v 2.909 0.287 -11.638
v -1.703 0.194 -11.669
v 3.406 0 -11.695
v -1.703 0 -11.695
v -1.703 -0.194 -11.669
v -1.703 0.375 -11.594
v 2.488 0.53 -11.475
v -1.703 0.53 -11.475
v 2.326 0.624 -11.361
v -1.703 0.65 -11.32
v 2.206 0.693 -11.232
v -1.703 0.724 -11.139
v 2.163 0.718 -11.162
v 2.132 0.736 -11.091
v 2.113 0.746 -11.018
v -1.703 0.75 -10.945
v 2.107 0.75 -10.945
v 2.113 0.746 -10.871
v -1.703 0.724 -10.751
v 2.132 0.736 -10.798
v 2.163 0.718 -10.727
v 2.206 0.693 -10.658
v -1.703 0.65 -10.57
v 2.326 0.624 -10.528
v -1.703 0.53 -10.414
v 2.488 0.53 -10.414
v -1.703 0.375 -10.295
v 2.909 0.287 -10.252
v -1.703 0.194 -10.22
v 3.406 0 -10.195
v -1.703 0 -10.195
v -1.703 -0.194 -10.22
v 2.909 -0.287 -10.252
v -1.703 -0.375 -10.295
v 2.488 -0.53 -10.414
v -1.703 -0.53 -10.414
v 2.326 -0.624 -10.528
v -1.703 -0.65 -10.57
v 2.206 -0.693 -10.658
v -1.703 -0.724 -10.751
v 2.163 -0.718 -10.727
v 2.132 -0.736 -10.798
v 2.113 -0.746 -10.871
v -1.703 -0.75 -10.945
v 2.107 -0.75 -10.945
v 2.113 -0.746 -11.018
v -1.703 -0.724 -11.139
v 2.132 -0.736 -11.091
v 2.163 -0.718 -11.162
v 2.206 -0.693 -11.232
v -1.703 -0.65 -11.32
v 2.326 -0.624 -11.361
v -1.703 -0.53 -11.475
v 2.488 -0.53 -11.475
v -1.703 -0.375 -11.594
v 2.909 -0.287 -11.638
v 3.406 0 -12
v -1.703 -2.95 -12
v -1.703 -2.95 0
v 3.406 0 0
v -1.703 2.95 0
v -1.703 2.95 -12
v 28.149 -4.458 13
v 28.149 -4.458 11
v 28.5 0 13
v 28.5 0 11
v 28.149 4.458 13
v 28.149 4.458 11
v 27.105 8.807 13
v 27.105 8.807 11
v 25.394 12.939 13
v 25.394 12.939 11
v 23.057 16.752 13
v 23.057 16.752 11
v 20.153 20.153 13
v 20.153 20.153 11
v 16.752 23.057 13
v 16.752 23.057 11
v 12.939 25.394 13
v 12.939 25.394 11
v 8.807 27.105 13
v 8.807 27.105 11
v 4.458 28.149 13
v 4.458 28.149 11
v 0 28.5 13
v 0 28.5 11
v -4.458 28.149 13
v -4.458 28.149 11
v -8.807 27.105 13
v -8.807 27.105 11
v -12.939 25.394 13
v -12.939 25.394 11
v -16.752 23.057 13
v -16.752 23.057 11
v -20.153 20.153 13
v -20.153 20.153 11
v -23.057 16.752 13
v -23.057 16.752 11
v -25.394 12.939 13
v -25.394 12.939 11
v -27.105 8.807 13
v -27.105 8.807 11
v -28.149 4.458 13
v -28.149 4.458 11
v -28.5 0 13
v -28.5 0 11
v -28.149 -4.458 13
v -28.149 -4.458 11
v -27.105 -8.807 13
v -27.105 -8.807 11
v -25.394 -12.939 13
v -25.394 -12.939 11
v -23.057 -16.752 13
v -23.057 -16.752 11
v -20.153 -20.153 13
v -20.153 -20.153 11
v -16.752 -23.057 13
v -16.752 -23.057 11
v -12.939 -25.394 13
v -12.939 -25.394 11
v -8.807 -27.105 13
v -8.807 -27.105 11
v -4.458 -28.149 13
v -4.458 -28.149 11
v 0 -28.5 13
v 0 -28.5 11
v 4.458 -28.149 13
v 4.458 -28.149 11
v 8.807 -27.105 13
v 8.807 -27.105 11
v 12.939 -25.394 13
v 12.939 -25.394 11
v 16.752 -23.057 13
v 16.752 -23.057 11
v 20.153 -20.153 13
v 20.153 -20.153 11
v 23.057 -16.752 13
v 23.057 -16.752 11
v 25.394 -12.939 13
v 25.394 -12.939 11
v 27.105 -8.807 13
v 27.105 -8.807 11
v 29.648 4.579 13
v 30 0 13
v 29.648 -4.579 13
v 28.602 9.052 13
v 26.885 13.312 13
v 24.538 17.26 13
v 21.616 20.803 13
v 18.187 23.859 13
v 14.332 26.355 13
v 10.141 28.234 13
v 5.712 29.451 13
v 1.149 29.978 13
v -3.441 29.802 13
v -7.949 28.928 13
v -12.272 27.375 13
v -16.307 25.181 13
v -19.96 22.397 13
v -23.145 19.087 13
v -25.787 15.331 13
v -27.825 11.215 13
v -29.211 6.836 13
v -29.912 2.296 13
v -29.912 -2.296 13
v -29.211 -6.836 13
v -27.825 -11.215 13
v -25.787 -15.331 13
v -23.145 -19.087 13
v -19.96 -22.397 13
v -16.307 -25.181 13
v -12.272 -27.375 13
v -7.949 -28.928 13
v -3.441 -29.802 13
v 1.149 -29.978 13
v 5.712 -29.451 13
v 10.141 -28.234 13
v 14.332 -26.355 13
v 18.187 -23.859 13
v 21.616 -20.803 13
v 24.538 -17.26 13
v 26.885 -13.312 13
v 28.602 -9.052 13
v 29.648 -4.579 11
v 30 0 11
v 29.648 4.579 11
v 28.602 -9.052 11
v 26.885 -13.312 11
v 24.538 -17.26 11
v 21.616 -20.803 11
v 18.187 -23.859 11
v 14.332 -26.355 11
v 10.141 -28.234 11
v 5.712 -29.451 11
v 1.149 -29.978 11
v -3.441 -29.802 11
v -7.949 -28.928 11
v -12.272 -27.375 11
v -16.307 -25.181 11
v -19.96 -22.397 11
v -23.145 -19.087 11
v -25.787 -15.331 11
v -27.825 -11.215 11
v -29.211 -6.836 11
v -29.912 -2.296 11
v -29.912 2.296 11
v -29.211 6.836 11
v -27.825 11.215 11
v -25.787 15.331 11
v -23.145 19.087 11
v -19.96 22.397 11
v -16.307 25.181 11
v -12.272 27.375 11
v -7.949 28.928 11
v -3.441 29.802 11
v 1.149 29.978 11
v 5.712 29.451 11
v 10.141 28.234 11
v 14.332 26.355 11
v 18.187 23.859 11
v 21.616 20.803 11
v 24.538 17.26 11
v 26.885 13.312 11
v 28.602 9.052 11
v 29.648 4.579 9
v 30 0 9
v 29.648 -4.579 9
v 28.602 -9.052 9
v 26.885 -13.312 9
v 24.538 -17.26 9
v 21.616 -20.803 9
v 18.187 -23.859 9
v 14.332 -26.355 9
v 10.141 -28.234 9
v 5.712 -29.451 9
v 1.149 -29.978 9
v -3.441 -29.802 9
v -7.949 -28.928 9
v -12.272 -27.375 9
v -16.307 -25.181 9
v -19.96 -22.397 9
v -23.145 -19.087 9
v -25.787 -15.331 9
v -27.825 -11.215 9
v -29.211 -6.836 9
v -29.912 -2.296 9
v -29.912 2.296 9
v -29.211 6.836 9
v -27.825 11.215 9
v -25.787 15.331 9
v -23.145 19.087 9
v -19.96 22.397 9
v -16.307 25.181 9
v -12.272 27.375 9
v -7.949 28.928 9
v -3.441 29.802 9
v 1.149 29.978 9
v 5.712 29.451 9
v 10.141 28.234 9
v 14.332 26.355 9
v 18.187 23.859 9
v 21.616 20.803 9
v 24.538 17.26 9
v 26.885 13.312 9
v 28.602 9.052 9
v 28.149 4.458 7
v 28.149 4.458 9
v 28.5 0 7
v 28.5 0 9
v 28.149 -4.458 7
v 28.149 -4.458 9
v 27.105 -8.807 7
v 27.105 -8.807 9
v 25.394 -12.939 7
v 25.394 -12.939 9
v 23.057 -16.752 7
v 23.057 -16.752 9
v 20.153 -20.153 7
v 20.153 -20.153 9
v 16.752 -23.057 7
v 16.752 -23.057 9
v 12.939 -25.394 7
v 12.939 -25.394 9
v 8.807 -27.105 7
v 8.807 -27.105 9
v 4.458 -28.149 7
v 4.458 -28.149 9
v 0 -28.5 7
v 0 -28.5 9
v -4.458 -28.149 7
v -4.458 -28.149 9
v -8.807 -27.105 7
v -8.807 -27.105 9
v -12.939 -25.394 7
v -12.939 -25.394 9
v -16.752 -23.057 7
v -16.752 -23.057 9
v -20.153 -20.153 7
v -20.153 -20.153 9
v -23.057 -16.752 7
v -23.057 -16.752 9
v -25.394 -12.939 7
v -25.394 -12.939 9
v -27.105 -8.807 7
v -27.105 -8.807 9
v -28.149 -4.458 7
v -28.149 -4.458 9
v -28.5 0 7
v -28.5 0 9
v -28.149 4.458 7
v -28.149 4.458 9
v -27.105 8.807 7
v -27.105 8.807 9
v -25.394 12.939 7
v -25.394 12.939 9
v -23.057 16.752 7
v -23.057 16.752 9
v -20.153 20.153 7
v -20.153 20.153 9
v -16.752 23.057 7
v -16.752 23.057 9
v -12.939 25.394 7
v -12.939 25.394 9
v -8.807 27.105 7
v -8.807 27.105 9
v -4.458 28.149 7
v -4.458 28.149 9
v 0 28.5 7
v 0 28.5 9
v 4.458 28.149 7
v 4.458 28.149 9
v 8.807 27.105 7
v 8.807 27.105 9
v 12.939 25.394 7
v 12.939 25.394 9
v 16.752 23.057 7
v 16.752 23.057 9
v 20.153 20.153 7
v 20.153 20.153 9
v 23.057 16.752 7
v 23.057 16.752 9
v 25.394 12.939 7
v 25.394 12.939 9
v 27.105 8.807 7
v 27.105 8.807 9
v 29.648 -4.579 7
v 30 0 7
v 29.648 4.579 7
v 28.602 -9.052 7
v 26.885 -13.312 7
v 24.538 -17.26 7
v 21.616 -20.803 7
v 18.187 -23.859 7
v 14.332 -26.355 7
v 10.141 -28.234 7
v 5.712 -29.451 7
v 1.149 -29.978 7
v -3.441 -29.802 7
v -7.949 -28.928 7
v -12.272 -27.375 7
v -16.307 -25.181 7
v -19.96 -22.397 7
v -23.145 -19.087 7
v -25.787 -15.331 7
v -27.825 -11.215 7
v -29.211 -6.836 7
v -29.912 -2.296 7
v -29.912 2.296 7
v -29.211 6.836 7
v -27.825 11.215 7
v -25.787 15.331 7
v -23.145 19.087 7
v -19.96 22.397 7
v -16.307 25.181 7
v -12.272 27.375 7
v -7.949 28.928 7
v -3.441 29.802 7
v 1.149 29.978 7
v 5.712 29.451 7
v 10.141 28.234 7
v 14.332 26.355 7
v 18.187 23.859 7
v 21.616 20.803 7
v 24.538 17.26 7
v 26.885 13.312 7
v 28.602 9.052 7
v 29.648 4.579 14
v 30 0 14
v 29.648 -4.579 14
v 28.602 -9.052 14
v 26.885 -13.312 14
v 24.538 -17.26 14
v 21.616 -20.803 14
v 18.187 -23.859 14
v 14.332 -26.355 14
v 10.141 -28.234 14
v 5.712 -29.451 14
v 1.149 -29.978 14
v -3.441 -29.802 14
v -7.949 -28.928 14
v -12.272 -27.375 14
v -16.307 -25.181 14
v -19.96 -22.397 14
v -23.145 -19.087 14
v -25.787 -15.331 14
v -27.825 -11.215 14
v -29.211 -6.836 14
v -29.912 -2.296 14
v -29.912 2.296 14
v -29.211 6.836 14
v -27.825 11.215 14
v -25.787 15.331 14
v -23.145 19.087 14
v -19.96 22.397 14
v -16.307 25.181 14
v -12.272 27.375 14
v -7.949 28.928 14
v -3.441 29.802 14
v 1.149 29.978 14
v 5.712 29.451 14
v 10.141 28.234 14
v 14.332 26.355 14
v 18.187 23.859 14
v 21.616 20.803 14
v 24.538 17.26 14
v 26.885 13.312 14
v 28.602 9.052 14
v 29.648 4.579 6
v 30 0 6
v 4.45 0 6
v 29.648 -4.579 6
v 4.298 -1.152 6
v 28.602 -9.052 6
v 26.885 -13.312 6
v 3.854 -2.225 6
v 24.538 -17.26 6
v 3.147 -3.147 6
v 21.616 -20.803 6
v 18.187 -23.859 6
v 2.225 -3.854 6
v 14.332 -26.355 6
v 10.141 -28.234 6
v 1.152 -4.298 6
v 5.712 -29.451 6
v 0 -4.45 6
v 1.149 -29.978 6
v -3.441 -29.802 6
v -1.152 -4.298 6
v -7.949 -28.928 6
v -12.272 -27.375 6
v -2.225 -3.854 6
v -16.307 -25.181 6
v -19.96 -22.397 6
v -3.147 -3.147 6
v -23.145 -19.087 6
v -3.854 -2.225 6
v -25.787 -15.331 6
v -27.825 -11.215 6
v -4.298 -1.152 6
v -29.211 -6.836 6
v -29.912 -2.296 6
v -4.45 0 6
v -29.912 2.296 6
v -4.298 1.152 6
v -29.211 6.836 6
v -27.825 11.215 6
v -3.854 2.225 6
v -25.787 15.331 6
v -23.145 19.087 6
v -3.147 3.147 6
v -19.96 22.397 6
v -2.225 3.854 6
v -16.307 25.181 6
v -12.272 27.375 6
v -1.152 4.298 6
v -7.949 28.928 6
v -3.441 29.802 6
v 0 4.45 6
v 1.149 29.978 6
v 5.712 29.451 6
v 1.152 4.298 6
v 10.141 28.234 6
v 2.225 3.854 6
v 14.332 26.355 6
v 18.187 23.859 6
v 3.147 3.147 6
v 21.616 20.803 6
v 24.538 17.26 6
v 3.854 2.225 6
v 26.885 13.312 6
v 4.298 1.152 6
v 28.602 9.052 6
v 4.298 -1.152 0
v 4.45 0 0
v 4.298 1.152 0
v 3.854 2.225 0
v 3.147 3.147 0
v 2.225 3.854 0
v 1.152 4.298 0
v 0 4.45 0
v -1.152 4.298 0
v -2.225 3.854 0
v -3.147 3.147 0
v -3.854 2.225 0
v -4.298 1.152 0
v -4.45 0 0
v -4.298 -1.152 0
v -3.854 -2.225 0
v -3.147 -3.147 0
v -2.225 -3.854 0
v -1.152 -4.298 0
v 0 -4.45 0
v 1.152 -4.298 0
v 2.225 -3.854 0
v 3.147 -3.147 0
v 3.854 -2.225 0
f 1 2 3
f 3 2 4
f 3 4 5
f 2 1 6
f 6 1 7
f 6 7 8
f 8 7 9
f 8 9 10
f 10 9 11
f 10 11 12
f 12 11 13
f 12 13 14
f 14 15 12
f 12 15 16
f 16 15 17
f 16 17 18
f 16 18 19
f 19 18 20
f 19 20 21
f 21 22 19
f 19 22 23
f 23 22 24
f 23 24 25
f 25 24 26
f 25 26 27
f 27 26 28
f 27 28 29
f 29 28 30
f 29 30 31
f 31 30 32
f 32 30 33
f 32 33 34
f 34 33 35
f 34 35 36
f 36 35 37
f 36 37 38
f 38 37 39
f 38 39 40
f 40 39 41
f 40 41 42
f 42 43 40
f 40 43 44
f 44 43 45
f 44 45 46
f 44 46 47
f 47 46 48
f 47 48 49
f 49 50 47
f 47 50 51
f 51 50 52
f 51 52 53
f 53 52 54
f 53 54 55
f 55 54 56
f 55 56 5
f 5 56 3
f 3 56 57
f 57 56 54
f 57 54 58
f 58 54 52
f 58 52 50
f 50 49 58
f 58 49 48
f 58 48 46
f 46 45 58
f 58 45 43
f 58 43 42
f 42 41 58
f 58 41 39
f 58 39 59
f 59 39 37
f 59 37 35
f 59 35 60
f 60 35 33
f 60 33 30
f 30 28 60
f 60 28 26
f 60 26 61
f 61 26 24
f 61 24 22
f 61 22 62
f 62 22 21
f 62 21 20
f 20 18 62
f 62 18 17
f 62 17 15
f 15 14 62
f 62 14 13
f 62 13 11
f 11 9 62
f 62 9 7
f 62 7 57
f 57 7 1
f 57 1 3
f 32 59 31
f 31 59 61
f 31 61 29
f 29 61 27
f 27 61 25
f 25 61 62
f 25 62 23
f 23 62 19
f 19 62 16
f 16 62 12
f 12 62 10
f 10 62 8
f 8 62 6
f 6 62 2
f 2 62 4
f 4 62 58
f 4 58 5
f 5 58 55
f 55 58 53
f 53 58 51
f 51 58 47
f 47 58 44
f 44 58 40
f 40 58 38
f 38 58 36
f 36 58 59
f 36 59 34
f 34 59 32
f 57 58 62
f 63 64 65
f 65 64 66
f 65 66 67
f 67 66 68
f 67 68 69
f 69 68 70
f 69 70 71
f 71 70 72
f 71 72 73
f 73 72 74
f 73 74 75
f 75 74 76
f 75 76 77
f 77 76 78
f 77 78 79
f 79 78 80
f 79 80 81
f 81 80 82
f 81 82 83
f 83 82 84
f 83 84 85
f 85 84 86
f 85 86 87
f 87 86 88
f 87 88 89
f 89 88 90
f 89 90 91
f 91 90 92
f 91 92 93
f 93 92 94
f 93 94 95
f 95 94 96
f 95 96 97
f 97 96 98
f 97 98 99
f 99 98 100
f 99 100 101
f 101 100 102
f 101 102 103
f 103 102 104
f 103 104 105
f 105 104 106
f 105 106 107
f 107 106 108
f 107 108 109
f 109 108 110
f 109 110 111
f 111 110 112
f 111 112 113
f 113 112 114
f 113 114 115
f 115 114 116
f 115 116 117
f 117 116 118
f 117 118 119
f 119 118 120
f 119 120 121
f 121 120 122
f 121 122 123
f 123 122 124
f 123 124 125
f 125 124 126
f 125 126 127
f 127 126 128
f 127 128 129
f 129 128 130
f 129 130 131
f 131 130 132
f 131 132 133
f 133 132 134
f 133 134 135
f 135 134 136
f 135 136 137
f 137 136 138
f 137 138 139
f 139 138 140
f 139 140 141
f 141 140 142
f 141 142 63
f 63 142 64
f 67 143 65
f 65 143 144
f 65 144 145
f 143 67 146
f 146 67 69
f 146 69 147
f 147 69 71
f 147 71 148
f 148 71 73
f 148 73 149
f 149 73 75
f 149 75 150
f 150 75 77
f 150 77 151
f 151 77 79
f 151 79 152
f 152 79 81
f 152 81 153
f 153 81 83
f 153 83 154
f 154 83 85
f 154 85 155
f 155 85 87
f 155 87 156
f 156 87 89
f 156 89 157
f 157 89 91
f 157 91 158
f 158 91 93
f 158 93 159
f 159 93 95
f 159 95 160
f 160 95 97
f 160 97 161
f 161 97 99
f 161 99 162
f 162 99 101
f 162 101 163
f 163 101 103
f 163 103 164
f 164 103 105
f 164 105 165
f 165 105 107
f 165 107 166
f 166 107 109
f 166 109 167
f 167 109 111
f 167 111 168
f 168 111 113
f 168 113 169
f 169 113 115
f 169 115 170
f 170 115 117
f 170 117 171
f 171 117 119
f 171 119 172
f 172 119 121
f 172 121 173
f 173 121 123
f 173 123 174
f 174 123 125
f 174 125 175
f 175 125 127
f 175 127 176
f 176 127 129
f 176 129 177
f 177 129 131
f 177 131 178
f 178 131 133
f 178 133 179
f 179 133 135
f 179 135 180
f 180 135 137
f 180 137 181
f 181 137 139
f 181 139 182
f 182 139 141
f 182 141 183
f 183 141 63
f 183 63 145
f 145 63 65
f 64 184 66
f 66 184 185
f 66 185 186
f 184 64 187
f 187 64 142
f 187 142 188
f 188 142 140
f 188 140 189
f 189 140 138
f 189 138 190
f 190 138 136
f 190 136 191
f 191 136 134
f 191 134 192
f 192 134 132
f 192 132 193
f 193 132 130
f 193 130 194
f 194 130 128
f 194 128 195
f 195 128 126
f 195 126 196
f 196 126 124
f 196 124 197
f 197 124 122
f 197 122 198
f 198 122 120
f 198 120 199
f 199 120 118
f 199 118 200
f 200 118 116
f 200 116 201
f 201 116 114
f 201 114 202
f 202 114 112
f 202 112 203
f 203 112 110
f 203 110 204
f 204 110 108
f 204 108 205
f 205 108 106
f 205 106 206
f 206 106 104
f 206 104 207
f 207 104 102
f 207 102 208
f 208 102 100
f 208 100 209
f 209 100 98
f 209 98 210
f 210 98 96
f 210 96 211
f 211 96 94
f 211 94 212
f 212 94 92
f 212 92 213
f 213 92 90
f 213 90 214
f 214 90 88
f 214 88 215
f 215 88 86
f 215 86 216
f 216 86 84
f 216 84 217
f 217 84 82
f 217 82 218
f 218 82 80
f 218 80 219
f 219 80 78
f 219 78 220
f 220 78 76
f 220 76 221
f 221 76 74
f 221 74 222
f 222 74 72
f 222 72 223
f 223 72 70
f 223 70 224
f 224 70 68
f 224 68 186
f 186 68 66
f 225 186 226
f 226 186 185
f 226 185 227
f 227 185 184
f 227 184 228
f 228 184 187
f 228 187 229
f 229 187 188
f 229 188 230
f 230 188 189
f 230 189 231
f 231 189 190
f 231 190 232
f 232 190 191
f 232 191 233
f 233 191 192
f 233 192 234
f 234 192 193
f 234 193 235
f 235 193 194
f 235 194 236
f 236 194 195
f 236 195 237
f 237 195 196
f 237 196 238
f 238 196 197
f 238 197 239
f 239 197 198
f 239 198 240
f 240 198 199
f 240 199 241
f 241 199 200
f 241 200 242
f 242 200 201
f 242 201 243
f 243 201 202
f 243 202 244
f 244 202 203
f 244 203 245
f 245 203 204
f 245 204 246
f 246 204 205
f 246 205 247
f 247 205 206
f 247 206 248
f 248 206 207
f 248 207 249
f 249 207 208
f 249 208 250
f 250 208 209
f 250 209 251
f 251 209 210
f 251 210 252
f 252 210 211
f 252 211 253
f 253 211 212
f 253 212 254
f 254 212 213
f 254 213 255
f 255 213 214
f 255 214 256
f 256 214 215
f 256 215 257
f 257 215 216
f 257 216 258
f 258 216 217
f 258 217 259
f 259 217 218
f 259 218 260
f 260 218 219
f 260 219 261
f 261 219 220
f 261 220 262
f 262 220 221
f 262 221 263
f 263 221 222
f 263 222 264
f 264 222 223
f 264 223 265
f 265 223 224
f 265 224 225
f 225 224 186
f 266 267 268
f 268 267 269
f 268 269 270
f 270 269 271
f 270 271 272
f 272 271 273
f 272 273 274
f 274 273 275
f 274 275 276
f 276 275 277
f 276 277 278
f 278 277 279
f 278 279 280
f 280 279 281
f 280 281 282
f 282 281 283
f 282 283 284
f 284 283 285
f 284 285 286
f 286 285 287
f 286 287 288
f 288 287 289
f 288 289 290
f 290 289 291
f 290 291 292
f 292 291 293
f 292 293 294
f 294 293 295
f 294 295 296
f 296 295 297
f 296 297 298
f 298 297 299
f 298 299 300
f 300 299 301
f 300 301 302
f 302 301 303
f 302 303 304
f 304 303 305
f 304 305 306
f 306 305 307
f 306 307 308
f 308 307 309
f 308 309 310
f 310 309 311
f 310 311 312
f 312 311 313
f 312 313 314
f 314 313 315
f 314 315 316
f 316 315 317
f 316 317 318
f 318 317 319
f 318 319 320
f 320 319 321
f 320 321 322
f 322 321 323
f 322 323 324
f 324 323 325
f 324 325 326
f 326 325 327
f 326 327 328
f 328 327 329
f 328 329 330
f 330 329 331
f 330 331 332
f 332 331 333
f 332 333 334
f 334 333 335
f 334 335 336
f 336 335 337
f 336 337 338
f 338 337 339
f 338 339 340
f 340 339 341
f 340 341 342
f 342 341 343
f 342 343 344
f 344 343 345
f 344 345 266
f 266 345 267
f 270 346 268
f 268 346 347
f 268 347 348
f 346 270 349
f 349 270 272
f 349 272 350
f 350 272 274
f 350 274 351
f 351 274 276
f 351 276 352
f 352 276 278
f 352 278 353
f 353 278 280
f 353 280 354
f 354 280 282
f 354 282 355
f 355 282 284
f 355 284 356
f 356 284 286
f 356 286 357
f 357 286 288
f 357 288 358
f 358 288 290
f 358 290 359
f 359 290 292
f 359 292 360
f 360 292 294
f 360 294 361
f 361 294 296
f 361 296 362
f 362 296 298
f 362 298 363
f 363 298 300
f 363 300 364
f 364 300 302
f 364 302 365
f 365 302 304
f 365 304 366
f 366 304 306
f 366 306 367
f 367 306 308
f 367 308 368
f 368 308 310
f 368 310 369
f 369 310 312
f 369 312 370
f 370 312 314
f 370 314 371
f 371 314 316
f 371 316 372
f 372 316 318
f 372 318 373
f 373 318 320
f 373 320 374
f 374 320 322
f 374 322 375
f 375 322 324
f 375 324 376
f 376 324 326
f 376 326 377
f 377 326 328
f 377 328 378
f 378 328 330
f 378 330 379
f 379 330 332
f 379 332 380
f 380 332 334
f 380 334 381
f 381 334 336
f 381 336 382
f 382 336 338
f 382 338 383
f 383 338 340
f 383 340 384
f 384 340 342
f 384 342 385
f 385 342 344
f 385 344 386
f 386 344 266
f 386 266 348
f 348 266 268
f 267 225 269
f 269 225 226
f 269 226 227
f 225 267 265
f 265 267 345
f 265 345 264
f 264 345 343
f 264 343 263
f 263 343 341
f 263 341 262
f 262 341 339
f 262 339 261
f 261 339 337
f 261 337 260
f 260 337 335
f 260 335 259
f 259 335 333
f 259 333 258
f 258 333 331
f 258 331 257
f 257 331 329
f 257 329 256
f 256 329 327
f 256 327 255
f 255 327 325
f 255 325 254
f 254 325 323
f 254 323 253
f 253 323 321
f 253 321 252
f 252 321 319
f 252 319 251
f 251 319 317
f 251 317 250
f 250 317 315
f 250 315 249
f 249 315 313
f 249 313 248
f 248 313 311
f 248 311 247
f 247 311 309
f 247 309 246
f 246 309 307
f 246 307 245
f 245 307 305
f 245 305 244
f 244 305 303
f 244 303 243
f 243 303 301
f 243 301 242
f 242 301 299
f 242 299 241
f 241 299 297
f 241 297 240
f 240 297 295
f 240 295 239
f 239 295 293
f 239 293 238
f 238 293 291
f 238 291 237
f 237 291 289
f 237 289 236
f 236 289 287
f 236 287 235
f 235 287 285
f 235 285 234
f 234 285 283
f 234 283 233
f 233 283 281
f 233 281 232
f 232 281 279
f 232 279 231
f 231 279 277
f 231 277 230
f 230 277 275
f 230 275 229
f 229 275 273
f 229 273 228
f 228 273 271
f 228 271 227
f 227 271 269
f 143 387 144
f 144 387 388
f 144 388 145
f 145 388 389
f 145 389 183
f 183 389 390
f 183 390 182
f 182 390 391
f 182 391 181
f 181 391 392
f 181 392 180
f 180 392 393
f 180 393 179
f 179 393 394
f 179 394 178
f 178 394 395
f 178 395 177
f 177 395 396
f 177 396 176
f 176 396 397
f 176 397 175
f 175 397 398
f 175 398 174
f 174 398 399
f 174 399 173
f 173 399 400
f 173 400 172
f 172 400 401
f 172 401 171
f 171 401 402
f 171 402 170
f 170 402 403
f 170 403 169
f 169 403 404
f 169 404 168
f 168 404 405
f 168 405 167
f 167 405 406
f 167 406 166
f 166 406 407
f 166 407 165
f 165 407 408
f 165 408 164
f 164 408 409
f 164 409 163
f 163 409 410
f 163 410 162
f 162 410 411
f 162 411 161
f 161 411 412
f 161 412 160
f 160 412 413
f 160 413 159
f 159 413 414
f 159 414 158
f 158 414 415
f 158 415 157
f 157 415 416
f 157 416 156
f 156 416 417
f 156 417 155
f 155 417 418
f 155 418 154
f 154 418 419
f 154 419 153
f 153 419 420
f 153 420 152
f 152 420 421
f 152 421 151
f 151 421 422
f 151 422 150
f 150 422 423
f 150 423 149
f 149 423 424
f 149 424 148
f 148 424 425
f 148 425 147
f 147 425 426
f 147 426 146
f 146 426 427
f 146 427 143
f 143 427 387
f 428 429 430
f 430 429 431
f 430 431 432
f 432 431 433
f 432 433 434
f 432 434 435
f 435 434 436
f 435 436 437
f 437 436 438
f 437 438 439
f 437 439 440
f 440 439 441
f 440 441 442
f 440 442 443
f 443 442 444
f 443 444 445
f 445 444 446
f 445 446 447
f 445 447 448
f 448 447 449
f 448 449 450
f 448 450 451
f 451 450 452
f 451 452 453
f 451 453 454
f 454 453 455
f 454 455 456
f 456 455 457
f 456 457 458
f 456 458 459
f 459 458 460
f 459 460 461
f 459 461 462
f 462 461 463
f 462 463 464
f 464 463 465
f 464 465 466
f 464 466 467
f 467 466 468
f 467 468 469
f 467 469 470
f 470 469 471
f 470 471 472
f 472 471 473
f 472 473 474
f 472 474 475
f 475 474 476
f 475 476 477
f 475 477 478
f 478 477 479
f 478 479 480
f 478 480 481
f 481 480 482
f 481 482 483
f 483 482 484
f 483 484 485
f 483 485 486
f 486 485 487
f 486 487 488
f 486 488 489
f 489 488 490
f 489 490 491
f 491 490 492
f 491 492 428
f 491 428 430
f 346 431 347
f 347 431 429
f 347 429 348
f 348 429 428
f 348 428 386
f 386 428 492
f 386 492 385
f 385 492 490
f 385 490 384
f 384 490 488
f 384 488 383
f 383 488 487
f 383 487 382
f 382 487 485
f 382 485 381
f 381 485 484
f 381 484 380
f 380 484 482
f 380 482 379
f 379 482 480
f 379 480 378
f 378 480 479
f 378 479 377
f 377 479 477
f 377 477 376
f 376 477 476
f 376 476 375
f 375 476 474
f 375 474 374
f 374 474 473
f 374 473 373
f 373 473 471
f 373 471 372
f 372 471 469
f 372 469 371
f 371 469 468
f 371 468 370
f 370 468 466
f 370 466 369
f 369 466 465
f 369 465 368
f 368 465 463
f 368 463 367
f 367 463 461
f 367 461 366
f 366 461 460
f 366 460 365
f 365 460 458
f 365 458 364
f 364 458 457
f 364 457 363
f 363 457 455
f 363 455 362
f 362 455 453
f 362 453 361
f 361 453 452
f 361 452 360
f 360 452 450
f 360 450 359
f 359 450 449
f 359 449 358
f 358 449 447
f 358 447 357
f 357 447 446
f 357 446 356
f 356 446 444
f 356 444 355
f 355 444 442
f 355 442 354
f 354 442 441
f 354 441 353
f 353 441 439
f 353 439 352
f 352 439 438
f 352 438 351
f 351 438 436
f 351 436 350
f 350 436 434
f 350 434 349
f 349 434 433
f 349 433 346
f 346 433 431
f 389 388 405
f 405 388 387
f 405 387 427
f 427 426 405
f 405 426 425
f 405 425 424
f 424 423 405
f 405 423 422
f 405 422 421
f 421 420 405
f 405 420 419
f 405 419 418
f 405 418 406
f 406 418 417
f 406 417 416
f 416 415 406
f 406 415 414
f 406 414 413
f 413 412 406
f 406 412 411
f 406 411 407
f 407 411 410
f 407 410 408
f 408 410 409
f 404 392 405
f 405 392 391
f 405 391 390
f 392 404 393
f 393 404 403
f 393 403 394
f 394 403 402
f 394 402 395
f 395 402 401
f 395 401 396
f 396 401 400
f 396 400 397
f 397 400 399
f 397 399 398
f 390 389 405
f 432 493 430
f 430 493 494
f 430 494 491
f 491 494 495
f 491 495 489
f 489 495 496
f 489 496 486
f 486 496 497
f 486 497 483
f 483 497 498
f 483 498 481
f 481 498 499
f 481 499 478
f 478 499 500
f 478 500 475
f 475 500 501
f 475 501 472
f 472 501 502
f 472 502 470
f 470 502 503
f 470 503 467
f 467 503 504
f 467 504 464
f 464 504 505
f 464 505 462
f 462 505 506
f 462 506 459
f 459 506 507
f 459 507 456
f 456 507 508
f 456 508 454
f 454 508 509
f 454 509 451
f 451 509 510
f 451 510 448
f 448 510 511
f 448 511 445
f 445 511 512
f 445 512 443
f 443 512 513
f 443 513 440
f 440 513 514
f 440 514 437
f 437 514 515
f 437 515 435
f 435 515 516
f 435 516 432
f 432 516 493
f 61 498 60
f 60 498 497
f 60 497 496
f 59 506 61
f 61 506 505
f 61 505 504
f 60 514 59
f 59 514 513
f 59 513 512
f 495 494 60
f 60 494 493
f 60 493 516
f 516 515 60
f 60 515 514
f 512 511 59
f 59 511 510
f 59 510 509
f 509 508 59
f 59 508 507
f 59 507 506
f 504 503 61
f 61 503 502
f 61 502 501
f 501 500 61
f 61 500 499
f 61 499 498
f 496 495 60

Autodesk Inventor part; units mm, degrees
ref_plane "YZ Plane" through (0, 0, 0) normal (1, 0, 0) x (0, 1, 0)
ref_plane "XZ Plane" through (0, 0, 0) normal (0, 1, 0) x (-1, 0, 0)
ref_plane "XY Plane" through (0, 0, 0) normal (0, 0, 1) x (1, 0, 0)
sketch "Sketch3" plane through (0, 0, 0) normal (0, 0, 1) x (1, 0, 0)
  circle A0 centre (0, 0) radius 4.45
  dimension "d11" = 8.9
extrude "Extrusion3" add sketch "Sketch3" along normal blind 6
sketch "Sketch4" plane through (0, 0, 6) normal (0, 0, 1) x (1, 0, 0)
  circle A0 centre (0, 0) radius 30
  dimension "d14" = 60
extrude "Extrusion4" add sketch "Sketch4" along normal blind 8
ref_plane "Work Plane2" through (0, 0, 8) normal (0, 0, 1) x (1, 0, 0)
ref_plane "Work Plane1" through (0, 0, 10) normal (0, 0, 1) x (1, 0, 0)
sketch "Sketch5" plane through (0, 0, 8) normal (0, 0, 1) x (1, 0, 0)
  circle A0 centre (0, 0) radius 28.5
  circle A1 centre (0, 0) radius 30
  dimension "d17" = 57
  dimension "d18" = 60
extrude "Extrusion5" cut sketch "Sketch5" along normal mid plane 2
mirror "Mirror1" about plane through (0, 0, 10) normal (0, 0, 1) of "Extrusion5"
sketch "Sketch7" plane through (0, 0, 0) normal (0, 0, -1) x (-1, 0, 0)
  line L0 (-3.4063, 0) -> (1.7033, -2.95)
  line L1 (1.7033, -2.95) -> (1.7033, 2.95)
  line L2 (-3.4063, 0) -> (1.7033, 2.95)
  dimension "d29" = 5.9
  dimension "d30" = 5.9
  dimension "d34" = 5.9
extrude "Extrusion7" add sketch "Sketch7" along normal blind 12
sketch "Sketch8" plane through (-1.7033, -2.95, 0) normal (-1, 0, 0) x (0, 0, 1)
  line L0 (0, 2.95) -> (-12, 2.95) projected
  circle A0 centre (-10.9447, 2.95) radius 0.75
  dimension "d37" = 1.5
extrude "Extrusion8" cut sketch "Sketch8" against normal blind 12
ref_plane "Work Plane3" through (0, 0, 10) normal (0, 0, 1) x (1, 0, 0)
ref_plane "Work Plane4" through (0, 0, 12) normal (0, 0, 1) x (1, 0, 0)
equation "\"d29\" = d34"
equation "\"d30\" = d34"
properties part number "PulleyAdapter"
